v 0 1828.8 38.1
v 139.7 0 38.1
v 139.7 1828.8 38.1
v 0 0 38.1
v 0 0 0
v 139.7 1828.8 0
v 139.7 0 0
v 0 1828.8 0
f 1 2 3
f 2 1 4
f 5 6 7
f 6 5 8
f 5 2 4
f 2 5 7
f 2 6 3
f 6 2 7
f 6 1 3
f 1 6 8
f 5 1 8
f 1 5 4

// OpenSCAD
/* dimensions in mm
*/
inch = 25.4;
lumberinch = inch*0.75;
lumbertwoinch = inch*1.5;
lumbersixinch = inch*5.5;
feet = inch*12;

module onebysix(); {
    color("Peru")
    cube([lumbersixinch,feet*6,lumbertwoinch]);
}
